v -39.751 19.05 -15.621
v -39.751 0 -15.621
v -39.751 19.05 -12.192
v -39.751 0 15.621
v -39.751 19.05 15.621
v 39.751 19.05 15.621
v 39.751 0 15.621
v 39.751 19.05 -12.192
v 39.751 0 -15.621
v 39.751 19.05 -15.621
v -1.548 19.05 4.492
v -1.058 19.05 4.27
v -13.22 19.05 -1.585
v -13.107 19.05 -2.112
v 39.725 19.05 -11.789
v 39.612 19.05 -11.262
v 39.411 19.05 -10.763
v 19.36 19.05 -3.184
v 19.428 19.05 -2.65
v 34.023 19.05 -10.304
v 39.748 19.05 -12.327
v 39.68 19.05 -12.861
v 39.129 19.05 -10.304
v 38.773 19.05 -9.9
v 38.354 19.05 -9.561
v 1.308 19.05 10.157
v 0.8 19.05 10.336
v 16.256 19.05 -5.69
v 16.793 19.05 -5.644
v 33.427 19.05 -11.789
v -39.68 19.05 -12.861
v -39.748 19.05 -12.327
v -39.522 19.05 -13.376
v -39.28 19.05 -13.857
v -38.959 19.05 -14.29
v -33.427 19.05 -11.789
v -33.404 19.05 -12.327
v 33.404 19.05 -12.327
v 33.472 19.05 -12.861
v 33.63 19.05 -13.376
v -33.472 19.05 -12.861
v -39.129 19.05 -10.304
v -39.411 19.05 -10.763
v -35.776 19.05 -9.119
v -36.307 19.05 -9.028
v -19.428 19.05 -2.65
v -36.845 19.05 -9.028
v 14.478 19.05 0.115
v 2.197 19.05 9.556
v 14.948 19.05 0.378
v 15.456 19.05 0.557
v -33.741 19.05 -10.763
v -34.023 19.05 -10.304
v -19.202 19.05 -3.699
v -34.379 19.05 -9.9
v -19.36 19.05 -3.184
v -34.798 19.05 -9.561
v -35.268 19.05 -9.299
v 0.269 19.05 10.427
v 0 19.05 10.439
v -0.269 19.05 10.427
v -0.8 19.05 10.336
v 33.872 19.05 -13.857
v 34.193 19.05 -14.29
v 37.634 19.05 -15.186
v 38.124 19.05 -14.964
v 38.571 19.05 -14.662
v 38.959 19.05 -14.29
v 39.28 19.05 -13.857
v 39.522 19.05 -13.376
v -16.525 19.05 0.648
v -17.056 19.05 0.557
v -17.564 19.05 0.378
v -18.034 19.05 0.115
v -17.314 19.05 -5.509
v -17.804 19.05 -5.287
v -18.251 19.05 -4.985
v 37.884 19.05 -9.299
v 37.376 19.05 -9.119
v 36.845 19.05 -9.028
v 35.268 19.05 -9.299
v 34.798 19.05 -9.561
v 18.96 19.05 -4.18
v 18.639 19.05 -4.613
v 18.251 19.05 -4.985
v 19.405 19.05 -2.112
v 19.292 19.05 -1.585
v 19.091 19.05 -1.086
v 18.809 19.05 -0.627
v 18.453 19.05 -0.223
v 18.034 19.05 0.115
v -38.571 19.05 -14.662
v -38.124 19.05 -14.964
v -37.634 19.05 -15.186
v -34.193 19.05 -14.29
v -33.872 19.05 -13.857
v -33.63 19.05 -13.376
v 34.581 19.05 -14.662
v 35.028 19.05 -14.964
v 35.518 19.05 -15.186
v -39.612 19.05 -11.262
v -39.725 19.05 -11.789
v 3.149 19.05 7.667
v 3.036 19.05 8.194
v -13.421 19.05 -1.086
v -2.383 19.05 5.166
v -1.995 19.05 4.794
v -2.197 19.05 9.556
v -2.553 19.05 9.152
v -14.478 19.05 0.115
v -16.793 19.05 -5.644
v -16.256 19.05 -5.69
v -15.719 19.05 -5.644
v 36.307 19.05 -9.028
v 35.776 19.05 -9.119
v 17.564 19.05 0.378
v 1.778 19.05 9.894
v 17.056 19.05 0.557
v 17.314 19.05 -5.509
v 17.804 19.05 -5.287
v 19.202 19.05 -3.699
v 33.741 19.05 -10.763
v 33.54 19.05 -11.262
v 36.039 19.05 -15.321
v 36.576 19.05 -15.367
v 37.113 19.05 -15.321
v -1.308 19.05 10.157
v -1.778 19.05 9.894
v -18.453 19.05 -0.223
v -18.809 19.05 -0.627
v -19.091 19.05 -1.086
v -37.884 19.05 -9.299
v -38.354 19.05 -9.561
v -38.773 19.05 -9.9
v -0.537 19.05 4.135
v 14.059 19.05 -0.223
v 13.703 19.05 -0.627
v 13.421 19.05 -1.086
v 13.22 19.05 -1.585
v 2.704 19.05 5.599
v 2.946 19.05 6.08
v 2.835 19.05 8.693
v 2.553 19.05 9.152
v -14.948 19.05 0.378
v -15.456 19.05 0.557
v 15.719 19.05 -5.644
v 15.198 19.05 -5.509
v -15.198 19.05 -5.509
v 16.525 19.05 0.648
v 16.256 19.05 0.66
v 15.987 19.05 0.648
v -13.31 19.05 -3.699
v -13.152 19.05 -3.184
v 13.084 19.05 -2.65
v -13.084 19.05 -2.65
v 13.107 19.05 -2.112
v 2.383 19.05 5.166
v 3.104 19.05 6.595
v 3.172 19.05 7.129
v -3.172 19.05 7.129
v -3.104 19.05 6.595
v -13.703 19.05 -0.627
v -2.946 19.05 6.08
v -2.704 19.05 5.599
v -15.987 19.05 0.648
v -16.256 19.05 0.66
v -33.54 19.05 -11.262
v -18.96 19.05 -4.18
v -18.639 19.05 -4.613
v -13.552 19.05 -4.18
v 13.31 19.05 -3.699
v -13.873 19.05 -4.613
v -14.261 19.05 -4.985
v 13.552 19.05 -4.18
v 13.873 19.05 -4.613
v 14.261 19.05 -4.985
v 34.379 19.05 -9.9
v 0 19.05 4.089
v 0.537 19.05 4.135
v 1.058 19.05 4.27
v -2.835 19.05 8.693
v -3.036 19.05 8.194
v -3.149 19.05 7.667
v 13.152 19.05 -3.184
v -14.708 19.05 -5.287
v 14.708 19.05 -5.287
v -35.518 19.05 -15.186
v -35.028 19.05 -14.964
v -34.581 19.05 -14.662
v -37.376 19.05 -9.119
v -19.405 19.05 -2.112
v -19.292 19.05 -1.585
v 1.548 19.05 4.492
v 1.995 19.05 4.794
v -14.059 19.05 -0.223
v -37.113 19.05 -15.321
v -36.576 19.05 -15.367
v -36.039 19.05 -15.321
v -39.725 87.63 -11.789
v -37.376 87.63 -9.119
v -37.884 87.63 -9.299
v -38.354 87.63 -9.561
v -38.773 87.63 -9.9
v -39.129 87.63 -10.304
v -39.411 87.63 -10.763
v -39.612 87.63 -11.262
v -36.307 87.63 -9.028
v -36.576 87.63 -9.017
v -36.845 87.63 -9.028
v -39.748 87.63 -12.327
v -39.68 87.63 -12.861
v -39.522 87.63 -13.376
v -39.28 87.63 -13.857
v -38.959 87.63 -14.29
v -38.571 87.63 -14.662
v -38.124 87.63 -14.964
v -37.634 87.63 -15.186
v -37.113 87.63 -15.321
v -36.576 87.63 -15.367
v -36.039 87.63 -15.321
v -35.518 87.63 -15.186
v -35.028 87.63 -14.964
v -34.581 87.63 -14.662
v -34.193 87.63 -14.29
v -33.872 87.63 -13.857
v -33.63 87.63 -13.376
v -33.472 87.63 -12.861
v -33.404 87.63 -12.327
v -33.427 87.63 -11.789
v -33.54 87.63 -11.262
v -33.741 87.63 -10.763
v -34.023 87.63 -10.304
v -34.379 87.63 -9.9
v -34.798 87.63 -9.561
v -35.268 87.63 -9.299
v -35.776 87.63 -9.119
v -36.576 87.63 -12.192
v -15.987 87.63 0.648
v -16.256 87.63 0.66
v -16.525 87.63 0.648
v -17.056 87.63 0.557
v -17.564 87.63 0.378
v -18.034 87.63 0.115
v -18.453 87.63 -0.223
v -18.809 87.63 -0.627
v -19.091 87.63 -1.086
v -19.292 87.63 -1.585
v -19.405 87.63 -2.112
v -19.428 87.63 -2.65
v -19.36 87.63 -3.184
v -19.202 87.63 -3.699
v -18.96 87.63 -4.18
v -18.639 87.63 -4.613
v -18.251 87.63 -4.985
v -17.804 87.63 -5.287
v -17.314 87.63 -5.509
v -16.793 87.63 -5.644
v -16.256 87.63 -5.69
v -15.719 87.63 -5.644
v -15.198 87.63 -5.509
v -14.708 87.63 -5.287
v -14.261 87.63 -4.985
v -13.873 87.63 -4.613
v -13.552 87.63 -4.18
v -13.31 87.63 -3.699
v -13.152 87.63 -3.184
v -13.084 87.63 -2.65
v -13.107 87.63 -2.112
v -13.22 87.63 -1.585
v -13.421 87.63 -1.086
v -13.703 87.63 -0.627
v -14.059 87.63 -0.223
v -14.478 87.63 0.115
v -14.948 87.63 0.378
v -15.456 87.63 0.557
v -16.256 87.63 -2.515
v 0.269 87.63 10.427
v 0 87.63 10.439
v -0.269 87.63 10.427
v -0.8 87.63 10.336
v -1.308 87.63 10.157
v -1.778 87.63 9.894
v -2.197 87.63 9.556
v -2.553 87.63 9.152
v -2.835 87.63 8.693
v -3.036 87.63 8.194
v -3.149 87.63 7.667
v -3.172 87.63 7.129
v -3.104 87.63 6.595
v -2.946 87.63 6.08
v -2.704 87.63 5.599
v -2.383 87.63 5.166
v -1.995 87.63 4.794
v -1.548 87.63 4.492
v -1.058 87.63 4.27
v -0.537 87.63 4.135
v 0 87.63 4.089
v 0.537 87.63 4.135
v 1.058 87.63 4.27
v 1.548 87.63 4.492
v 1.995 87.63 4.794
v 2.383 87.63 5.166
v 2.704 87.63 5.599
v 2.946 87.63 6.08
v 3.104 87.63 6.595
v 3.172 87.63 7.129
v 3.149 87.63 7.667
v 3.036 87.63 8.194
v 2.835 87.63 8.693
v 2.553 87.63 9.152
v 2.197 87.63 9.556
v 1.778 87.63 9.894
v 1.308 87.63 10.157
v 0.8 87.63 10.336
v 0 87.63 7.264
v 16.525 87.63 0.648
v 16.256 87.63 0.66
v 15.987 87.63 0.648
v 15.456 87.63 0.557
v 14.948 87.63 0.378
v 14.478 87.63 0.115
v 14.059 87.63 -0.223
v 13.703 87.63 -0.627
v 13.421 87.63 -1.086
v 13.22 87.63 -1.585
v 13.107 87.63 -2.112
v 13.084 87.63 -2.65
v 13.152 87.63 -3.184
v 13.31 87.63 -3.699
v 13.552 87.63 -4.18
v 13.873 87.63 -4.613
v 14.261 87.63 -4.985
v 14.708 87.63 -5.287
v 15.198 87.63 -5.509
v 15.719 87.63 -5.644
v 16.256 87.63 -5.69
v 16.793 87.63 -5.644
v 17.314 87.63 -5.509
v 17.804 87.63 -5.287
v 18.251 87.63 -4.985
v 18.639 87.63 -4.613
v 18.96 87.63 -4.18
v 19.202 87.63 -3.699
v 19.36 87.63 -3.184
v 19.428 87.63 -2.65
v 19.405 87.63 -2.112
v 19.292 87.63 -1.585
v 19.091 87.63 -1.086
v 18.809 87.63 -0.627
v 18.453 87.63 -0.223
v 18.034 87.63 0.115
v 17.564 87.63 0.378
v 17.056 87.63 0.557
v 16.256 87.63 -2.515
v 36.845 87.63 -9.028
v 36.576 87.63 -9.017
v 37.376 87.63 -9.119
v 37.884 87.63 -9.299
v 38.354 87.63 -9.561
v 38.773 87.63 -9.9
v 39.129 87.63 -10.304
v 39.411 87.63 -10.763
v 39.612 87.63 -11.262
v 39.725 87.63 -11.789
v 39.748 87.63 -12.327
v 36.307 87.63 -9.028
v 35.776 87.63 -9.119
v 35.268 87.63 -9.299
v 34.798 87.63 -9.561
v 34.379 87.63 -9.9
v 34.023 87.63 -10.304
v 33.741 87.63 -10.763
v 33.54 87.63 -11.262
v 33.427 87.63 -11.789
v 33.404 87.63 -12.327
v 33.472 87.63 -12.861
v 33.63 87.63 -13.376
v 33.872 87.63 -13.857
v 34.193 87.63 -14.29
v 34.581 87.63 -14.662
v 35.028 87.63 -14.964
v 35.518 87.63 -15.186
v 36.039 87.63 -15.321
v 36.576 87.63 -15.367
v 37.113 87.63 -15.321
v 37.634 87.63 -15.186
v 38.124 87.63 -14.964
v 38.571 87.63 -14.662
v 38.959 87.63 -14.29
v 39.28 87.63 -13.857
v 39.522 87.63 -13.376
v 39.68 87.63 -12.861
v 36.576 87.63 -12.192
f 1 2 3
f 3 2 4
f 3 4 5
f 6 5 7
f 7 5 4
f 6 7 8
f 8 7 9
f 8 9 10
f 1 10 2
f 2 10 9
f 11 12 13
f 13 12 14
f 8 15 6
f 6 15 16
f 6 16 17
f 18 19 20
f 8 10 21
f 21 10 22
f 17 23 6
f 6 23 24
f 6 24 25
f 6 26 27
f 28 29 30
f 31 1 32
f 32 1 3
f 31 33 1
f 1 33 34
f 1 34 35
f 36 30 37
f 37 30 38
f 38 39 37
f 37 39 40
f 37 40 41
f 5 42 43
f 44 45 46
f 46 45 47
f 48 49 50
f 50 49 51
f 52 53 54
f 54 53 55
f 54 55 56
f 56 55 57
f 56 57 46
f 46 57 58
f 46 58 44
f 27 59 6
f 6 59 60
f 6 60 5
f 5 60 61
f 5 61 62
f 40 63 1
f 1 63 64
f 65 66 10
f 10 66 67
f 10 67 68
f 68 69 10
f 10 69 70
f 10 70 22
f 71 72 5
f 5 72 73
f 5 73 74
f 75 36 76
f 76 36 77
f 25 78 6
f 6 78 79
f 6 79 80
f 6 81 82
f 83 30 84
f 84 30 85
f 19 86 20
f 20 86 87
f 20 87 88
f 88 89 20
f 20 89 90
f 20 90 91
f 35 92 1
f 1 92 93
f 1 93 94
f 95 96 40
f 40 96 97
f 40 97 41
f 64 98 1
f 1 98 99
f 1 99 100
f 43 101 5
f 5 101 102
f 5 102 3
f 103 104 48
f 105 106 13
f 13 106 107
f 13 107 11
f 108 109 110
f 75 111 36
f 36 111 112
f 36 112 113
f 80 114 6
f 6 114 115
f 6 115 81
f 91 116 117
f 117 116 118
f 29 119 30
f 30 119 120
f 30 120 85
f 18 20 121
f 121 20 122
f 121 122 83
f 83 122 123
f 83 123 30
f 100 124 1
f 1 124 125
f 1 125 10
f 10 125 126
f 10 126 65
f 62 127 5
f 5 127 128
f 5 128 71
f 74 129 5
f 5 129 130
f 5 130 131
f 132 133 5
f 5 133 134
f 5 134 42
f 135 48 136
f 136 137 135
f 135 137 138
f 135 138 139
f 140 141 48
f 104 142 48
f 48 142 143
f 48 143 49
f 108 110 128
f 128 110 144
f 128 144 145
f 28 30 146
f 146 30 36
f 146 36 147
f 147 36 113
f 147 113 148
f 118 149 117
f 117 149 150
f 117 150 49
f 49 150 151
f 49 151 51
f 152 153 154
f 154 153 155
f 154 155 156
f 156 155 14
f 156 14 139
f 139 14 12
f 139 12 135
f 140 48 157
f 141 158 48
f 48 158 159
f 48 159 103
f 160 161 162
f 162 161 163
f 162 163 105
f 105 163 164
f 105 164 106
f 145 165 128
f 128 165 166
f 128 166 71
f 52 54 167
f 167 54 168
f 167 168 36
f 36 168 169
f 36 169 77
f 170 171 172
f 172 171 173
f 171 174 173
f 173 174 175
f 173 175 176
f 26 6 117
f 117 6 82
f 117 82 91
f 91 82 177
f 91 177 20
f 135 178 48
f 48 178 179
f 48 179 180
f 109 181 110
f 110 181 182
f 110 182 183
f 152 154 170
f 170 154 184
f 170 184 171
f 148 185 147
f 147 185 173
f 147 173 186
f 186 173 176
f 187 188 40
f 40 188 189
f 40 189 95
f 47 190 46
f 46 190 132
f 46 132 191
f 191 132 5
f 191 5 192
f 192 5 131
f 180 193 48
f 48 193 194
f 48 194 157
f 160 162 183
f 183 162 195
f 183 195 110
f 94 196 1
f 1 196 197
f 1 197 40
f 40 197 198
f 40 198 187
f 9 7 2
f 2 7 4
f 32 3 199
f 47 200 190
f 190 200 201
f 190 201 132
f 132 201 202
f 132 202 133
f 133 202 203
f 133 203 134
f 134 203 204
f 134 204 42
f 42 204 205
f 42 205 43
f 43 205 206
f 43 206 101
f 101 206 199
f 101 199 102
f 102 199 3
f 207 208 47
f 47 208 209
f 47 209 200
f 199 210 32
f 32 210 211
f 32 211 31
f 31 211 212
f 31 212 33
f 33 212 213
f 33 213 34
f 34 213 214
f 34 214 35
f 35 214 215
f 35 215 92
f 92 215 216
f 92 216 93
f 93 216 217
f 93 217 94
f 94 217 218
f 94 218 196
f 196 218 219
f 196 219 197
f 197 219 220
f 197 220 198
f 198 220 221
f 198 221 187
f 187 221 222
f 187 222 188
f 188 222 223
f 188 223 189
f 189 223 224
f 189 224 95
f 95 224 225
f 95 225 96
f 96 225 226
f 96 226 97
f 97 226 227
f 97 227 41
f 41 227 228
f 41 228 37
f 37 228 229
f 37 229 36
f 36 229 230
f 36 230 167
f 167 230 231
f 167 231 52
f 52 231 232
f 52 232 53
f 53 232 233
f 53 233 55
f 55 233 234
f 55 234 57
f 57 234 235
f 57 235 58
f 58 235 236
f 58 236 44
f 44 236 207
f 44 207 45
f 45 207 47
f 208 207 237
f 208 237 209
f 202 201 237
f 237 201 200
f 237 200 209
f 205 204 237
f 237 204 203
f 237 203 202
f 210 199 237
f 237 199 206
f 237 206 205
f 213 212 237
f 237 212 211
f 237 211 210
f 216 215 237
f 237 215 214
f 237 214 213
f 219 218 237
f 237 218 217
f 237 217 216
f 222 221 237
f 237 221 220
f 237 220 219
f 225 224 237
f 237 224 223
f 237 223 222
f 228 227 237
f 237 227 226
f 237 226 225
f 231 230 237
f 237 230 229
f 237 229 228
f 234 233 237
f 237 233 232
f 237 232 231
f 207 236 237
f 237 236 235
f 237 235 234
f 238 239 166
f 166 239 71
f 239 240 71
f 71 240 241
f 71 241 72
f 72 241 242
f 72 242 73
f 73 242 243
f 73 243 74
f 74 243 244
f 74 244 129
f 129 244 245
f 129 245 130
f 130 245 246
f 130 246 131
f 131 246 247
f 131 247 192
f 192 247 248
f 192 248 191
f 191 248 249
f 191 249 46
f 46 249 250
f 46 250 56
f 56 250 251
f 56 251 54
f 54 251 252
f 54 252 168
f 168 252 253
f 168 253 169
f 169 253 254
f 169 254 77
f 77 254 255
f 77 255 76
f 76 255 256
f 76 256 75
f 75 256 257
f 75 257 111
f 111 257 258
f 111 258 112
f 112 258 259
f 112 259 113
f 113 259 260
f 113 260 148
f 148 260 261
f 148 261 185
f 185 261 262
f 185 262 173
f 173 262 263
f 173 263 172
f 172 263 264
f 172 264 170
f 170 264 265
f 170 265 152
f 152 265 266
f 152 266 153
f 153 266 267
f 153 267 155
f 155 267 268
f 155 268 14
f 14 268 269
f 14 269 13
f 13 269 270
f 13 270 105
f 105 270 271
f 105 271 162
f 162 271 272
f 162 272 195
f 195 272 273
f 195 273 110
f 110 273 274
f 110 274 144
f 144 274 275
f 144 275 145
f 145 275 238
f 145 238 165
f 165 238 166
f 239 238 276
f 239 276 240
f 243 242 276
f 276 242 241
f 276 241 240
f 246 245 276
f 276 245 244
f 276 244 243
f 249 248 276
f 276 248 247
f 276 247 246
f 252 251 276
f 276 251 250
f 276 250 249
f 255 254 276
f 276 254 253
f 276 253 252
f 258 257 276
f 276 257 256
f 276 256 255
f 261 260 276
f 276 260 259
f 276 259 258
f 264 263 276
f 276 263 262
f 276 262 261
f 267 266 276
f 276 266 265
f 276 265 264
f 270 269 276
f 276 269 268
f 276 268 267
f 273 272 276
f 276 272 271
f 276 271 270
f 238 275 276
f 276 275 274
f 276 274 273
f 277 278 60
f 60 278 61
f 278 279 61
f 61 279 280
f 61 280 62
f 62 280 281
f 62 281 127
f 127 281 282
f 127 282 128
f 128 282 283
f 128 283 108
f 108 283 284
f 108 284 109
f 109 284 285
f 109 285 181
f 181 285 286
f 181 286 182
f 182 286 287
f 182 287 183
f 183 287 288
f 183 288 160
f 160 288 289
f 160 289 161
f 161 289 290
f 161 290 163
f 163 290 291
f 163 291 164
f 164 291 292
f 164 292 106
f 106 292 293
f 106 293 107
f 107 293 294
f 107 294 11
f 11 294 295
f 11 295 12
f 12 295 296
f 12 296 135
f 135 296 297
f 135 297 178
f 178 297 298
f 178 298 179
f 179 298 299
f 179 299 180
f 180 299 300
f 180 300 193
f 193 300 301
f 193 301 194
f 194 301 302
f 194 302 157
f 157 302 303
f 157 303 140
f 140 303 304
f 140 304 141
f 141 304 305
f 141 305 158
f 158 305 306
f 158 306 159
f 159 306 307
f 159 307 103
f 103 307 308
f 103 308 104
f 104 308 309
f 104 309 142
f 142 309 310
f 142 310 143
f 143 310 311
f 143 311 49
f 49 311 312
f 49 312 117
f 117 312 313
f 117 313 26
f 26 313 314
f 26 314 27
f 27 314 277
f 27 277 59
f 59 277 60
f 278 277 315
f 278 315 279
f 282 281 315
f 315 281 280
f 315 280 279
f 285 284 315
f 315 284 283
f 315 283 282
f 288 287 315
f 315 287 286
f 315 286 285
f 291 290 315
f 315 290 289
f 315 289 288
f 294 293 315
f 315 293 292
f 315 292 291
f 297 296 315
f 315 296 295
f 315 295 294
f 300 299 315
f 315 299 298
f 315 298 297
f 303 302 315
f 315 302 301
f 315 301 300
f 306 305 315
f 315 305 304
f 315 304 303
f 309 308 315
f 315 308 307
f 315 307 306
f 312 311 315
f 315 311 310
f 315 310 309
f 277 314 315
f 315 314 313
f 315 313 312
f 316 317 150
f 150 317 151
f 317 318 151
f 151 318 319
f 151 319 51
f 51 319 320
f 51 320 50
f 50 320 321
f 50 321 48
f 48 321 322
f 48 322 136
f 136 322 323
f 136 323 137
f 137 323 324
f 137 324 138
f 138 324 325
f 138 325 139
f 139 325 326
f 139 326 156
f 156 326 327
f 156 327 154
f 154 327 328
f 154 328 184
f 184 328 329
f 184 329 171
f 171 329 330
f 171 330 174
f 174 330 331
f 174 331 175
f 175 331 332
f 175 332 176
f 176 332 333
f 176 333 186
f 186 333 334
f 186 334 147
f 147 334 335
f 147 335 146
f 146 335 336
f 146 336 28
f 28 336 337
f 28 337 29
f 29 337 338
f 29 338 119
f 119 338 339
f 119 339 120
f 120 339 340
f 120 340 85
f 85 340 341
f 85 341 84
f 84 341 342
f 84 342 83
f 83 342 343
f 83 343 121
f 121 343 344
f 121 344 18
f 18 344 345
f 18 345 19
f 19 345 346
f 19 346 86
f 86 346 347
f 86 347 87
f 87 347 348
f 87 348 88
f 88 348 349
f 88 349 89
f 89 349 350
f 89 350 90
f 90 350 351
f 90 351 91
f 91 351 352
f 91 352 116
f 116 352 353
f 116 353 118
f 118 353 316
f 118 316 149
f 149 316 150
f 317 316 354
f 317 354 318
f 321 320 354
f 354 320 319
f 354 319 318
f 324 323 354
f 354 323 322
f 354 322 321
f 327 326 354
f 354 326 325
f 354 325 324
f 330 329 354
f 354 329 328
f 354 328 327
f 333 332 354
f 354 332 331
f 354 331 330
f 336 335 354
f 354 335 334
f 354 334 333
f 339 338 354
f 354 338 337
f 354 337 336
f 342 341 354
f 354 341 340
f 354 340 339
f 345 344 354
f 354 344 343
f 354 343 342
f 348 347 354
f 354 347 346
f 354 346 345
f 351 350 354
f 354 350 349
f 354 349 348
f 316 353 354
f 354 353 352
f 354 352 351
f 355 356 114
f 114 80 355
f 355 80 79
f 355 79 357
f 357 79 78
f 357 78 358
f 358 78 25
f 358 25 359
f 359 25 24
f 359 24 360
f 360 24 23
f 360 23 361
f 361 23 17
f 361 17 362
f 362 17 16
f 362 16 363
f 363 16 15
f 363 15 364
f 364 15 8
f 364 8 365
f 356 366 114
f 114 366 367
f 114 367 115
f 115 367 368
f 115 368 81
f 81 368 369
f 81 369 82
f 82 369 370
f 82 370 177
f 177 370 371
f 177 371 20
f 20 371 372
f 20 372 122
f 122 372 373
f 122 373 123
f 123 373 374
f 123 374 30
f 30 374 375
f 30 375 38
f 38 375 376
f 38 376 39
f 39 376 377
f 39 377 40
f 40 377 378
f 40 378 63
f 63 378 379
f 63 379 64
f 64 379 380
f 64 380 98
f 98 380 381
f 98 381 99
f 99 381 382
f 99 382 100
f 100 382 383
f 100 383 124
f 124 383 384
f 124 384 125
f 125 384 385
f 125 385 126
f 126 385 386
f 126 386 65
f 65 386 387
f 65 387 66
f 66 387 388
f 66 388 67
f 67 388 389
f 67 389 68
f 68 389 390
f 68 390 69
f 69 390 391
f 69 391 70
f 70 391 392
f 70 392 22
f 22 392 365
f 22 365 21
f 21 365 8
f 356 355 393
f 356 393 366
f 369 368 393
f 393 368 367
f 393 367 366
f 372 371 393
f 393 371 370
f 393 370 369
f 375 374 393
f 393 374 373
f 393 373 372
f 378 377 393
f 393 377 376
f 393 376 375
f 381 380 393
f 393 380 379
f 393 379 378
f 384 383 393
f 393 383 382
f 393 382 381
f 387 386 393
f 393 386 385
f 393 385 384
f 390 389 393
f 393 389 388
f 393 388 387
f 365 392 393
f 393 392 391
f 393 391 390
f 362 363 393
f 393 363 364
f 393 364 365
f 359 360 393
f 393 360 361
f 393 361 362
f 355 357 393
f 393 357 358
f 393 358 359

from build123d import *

# Parameters (mm, degrees)
SKETCH1_W           = 79.502
SKETCH1_H           = 31.242
BOSS_EXTRUDE1_DEPTH = 19.05
SKETCH2_R           = 3.175
BOSS_EXTRUDE2_DEPTH = 68.58


with BuildPart() as part:
    # Sketch1 → Boss-Extrude1 (new body)
    with BuildSketch(Plane(origin=(0, 0, 0), x_dir=(1, 0, 0), z_dir=(0, 1, 0))):
        Rectangle(SKETCH1_W, SKETCH1_H)
    extrude(amount=BOSS_EXTRUDE1_DEPTH)

    # Sketch2 → Boss-Extrude2 (add)
    with BuildSketch(Plane(origin=(0, 19.05, 0), x_dir=(1, 0, 0), z_dir=(0, 1, 0))):
        with Locations(Location((-36.576, 12.192, 0), (0, 0, 180))):
            Circle(SKETCH2_R)
        with Locations(Location((-16.256, 2.515131479, 0), (0, 0, 270))):
            Circle(SKETCH2_R)
        with Locations(Location((0, -7.263868521, 0), (0, 0, 270))):
            Circle(SKETCH2_R)
        with Locations(Location((16.256, 2.515131479, 0), (0, 0, 270))):
            Circle(SKETCH2_R)
        with Locations((36.576, 12.192)):
            Circle(SKETCH2_R)
    extrude(amount=BOSS_EXTRUDE2_DEPTH)


solid = part.part
